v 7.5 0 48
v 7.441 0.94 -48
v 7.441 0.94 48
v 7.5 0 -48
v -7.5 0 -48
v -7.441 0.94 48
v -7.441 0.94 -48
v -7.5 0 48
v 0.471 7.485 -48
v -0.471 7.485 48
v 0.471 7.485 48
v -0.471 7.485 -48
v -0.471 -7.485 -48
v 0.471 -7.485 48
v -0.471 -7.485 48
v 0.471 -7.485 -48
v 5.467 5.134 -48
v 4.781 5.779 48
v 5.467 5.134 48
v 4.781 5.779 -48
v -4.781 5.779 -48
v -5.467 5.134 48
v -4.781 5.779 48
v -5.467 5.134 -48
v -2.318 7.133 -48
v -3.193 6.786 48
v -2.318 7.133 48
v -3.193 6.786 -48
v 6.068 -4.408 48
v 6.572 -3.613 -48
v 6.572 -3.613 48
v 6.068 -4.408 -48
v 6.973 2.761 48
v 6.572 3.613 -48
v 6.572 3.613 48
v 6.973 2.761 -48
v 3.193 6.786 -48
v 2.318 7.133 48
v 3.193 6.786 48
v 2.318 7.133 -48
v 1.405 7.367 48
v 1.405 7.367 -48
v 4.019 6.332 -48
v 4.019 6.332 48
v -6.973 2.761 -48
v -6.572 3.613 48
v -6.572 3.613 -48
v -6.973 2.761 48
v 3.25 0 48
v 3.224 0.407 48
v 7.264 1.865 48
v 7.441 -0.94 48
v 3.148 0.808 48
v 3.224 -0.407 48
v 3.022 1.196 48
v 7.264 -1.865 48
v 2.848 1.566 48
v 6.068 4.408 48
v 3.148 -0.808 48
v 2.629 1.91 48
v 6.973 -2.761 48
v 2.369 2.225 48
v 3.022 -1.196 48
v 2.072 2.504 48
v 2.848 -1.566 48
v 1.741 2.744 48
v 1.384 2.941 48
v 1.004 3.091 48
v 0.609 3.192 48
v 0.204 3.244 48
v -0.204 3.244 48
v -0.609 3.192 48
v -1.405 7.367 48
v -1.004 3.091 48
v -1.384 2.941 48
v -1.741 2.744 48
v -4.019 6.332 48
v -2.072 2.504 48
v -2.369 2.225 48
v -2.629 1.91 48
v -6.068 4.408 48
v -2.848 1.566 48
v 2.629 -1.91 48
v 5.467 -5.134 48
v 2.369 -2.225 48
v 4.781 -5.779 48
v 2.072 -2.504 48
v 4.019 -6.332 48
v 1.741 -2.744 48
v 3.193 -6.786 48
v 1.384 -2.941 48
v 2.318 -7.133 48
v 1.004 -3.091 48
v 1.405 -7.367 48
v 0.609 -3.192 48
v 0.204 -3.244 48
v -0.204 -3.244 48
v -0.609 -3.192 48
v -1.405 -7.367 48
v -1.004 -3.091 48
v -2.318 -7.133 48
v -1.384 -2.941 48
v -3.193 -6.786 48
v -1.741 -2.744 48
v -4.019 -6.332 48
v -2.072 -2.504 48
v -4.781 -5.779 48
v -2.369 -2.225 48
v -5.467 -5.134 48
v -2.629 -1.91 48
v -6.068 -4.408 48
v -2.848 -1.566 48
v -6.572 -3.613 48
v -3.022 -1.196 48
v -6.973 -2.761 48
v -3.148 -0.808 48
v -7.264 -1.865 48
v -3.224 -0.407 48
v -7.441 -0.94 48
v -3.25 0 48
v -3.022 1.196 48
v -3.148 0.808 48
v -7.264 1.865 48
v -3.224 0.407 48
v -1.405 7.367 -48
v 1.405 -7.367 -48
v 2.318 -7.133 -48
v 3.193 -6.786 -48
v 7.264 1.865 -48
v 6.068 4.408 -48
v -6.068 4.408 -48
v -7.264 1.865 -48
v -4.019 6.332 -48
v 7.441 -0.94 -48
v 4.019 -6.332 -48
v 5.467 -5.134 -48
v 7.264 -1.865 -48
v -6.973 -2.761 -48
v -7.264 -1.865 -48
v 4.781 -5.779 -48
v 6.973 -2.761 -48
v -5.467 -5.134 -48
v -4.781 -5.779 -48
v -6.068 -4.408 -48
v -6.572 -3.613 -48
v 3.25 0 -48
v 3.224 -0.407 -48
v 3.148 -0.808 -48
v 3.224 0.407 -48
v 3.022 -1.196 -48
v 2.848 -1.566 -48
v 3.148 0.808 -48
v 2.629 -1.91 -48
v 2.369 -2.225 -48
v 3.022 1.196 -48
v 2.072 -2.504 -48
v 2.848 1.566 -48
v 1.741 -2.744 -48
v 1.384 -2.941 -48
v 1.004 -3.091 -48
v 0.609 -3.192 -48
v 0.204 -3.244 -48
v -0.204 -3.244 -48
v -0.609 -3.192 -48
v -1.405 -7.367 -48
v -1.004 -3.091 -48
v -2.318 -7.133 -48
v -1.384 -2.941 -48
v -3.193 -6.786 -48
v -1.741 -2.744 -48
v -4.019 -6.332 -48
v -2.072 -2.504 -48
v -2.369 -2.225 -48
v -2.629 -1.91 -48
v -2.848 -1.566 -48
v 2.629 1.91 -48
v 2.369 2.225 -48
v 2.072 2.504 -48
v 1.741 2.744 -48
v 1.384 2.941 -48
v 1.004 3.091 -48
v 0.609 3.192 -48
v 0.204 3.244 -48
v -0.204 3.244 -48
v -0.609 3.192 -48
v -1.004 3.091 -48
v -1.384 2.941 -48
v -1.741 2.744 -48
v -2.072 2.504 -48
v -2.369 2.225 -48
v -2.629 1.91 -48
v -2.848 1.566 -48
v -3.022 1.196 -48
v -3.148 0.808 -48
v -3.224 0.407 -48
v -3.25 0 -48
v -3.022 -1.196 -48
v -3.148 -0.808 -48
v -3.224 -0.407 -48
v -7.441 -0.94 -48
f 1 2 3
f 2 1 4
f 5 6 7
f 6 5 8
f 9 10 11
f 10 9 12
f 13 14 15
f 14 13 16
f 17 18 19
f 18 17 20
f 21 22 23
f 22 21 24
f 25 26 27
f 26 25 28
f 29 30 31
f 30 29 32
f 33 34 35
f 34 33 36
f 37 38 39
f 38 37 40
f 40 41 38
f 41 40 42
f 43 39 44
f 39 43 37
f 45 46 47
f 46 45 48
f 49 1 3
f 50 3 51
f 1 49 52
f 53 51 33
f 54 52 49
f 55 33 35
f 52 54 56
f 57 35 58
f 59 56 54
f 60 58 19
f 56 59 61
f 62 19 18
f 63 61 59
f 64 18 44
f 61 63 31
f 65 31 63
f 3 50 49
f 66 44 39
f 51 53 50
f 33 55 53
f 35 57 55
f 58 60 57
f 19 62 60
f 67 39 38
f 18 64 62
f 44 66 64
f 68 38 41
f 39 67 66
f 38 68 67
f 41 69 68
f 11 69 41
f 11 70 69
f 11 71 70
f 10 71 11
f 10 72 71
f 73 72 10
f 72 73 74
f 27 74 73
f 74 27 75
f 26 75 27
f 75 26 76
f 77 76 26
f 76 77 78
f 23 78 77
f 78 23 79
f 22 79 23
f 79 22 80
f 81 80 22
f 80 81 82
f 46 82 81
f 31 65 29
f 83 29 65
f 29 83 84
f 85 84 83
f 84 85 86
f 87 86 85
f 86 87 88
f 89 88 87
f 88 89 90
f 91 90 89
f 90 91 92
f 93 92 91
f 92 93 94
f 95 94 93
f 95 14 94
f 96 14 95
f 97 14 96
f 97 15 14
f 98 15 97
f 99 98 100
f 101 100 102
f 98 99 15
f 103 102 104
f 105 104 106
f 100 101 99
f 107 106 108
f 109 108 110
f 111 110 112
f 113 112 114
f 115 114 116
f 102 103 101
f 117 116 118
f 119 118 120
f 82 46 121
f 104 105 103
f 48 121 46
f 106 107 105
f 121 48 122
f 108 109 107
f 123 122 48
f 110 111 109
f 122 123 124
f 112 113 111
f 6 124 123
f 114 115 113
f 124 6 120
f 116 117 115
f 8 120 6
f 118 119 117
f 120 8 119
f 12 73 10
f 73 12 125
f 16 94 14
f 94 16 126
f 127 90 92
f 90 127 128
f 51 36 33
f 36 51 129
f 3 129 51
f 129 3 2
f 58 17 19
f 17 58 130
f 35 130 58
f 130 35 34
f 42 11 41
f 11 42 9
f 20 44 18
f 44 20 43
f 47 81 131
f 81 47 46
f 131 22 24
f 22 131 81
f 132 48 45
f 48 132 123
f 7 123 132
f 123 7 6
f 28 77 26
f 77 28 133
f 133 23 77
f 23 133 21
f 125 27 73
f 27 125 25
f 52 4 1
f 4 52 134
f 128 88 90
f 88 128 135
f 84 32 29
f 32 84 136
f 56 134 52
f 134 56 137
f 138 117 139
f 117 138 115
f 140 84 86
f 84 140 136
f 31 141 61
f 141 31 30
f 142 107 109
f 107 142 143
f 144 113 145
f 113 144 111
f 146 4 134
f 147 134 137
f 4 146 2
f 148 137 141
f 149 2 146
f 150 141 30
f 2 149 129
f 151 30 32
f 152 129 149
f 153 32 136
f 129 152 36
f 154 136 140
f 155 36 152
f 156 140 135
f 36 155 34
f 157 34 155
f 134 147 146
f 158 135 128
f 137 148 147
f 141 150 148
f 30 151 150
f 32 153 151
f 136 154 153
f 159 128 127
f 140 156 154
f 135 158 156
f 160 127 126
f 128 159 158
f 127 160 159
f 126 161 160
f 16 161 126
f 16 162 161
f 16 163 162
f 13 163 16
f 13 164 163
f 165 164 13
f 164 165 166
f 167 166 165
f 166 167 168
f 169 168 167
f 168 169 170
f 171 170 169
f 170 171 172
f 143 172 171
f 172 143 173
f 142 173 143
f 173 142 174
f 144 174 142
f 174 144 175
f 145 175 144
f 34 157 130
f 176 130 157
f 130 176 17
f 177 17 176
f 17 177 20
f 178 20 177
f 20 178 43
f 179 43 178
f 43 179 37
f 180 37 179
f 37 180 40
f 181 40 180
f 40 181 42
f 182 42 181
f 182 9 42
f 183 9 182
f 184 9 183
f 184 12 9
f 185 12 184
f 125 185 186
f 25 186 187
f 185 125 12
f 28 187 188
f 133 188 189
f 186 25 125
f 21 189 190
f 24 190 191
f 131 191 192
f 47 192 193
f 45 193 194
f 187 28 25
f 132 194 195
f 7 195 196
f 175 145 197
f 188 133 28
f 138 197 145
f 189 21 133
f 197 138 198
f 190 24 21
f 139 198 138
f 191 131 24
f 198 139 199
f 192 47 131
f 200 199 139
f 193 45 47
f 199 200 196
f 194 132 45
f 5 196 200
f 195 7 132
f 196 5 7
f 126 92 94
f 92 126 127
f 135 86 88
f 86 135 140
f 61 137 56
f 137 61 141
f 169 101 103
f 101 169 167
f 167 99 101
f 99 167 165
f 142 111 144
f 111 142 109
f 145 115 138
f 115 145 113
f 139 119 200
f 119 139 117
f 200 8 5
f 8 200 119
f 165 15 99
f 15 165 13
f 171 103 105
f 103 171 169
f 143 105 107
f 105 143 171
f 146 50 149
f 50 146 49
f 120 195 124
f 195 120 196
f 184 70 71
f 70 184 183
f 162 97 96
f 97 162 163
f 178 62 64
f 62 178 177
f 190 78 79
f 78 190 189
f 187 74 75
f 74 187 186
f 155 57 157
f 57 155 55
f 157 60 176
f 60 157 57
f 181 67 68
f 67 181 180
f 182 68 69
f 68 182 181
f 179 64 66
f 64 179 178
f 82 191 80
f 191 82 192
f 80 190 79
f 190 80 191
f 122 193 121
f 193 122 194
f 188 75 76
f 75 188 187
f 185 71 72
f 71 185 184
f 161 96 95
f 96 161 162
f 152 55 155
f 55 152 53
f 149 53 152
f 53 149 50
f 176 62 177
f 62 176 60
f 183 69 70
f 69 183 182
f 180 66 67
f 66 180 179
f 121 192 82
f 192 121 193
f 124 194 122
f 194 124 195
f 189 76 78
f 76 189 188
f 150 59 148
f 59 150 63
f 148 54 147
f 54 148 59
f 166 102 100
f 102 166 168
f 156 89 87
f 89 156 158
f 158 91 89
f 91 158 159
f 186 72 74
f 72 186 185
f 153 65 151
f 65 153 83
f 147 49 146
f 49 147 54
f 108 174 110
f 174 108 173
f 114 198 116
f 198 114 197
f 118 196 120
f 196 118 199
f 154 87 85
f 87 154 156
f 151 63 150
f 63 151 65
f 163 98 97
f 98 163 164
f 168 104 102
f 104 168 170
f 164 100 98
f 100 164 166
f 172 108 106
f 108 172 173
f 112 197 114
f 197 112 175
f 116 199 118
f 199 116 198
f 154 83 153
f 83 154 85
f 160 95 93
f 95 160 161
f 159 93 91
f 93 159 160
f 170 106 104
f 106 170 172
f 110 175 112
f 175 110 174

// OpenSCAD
$fn = 50;


difference() {
	union() {
		translate(v = [0, 0, -48.0000000000]) {
			cylinder(h = 96, r = 7.5000000000);
		}
	}
	union() {
		translate(v = [0, 0, -100.0000000000]) {
			cylinder(h = 200, r = 3.2500000000);
		}
	}
}
